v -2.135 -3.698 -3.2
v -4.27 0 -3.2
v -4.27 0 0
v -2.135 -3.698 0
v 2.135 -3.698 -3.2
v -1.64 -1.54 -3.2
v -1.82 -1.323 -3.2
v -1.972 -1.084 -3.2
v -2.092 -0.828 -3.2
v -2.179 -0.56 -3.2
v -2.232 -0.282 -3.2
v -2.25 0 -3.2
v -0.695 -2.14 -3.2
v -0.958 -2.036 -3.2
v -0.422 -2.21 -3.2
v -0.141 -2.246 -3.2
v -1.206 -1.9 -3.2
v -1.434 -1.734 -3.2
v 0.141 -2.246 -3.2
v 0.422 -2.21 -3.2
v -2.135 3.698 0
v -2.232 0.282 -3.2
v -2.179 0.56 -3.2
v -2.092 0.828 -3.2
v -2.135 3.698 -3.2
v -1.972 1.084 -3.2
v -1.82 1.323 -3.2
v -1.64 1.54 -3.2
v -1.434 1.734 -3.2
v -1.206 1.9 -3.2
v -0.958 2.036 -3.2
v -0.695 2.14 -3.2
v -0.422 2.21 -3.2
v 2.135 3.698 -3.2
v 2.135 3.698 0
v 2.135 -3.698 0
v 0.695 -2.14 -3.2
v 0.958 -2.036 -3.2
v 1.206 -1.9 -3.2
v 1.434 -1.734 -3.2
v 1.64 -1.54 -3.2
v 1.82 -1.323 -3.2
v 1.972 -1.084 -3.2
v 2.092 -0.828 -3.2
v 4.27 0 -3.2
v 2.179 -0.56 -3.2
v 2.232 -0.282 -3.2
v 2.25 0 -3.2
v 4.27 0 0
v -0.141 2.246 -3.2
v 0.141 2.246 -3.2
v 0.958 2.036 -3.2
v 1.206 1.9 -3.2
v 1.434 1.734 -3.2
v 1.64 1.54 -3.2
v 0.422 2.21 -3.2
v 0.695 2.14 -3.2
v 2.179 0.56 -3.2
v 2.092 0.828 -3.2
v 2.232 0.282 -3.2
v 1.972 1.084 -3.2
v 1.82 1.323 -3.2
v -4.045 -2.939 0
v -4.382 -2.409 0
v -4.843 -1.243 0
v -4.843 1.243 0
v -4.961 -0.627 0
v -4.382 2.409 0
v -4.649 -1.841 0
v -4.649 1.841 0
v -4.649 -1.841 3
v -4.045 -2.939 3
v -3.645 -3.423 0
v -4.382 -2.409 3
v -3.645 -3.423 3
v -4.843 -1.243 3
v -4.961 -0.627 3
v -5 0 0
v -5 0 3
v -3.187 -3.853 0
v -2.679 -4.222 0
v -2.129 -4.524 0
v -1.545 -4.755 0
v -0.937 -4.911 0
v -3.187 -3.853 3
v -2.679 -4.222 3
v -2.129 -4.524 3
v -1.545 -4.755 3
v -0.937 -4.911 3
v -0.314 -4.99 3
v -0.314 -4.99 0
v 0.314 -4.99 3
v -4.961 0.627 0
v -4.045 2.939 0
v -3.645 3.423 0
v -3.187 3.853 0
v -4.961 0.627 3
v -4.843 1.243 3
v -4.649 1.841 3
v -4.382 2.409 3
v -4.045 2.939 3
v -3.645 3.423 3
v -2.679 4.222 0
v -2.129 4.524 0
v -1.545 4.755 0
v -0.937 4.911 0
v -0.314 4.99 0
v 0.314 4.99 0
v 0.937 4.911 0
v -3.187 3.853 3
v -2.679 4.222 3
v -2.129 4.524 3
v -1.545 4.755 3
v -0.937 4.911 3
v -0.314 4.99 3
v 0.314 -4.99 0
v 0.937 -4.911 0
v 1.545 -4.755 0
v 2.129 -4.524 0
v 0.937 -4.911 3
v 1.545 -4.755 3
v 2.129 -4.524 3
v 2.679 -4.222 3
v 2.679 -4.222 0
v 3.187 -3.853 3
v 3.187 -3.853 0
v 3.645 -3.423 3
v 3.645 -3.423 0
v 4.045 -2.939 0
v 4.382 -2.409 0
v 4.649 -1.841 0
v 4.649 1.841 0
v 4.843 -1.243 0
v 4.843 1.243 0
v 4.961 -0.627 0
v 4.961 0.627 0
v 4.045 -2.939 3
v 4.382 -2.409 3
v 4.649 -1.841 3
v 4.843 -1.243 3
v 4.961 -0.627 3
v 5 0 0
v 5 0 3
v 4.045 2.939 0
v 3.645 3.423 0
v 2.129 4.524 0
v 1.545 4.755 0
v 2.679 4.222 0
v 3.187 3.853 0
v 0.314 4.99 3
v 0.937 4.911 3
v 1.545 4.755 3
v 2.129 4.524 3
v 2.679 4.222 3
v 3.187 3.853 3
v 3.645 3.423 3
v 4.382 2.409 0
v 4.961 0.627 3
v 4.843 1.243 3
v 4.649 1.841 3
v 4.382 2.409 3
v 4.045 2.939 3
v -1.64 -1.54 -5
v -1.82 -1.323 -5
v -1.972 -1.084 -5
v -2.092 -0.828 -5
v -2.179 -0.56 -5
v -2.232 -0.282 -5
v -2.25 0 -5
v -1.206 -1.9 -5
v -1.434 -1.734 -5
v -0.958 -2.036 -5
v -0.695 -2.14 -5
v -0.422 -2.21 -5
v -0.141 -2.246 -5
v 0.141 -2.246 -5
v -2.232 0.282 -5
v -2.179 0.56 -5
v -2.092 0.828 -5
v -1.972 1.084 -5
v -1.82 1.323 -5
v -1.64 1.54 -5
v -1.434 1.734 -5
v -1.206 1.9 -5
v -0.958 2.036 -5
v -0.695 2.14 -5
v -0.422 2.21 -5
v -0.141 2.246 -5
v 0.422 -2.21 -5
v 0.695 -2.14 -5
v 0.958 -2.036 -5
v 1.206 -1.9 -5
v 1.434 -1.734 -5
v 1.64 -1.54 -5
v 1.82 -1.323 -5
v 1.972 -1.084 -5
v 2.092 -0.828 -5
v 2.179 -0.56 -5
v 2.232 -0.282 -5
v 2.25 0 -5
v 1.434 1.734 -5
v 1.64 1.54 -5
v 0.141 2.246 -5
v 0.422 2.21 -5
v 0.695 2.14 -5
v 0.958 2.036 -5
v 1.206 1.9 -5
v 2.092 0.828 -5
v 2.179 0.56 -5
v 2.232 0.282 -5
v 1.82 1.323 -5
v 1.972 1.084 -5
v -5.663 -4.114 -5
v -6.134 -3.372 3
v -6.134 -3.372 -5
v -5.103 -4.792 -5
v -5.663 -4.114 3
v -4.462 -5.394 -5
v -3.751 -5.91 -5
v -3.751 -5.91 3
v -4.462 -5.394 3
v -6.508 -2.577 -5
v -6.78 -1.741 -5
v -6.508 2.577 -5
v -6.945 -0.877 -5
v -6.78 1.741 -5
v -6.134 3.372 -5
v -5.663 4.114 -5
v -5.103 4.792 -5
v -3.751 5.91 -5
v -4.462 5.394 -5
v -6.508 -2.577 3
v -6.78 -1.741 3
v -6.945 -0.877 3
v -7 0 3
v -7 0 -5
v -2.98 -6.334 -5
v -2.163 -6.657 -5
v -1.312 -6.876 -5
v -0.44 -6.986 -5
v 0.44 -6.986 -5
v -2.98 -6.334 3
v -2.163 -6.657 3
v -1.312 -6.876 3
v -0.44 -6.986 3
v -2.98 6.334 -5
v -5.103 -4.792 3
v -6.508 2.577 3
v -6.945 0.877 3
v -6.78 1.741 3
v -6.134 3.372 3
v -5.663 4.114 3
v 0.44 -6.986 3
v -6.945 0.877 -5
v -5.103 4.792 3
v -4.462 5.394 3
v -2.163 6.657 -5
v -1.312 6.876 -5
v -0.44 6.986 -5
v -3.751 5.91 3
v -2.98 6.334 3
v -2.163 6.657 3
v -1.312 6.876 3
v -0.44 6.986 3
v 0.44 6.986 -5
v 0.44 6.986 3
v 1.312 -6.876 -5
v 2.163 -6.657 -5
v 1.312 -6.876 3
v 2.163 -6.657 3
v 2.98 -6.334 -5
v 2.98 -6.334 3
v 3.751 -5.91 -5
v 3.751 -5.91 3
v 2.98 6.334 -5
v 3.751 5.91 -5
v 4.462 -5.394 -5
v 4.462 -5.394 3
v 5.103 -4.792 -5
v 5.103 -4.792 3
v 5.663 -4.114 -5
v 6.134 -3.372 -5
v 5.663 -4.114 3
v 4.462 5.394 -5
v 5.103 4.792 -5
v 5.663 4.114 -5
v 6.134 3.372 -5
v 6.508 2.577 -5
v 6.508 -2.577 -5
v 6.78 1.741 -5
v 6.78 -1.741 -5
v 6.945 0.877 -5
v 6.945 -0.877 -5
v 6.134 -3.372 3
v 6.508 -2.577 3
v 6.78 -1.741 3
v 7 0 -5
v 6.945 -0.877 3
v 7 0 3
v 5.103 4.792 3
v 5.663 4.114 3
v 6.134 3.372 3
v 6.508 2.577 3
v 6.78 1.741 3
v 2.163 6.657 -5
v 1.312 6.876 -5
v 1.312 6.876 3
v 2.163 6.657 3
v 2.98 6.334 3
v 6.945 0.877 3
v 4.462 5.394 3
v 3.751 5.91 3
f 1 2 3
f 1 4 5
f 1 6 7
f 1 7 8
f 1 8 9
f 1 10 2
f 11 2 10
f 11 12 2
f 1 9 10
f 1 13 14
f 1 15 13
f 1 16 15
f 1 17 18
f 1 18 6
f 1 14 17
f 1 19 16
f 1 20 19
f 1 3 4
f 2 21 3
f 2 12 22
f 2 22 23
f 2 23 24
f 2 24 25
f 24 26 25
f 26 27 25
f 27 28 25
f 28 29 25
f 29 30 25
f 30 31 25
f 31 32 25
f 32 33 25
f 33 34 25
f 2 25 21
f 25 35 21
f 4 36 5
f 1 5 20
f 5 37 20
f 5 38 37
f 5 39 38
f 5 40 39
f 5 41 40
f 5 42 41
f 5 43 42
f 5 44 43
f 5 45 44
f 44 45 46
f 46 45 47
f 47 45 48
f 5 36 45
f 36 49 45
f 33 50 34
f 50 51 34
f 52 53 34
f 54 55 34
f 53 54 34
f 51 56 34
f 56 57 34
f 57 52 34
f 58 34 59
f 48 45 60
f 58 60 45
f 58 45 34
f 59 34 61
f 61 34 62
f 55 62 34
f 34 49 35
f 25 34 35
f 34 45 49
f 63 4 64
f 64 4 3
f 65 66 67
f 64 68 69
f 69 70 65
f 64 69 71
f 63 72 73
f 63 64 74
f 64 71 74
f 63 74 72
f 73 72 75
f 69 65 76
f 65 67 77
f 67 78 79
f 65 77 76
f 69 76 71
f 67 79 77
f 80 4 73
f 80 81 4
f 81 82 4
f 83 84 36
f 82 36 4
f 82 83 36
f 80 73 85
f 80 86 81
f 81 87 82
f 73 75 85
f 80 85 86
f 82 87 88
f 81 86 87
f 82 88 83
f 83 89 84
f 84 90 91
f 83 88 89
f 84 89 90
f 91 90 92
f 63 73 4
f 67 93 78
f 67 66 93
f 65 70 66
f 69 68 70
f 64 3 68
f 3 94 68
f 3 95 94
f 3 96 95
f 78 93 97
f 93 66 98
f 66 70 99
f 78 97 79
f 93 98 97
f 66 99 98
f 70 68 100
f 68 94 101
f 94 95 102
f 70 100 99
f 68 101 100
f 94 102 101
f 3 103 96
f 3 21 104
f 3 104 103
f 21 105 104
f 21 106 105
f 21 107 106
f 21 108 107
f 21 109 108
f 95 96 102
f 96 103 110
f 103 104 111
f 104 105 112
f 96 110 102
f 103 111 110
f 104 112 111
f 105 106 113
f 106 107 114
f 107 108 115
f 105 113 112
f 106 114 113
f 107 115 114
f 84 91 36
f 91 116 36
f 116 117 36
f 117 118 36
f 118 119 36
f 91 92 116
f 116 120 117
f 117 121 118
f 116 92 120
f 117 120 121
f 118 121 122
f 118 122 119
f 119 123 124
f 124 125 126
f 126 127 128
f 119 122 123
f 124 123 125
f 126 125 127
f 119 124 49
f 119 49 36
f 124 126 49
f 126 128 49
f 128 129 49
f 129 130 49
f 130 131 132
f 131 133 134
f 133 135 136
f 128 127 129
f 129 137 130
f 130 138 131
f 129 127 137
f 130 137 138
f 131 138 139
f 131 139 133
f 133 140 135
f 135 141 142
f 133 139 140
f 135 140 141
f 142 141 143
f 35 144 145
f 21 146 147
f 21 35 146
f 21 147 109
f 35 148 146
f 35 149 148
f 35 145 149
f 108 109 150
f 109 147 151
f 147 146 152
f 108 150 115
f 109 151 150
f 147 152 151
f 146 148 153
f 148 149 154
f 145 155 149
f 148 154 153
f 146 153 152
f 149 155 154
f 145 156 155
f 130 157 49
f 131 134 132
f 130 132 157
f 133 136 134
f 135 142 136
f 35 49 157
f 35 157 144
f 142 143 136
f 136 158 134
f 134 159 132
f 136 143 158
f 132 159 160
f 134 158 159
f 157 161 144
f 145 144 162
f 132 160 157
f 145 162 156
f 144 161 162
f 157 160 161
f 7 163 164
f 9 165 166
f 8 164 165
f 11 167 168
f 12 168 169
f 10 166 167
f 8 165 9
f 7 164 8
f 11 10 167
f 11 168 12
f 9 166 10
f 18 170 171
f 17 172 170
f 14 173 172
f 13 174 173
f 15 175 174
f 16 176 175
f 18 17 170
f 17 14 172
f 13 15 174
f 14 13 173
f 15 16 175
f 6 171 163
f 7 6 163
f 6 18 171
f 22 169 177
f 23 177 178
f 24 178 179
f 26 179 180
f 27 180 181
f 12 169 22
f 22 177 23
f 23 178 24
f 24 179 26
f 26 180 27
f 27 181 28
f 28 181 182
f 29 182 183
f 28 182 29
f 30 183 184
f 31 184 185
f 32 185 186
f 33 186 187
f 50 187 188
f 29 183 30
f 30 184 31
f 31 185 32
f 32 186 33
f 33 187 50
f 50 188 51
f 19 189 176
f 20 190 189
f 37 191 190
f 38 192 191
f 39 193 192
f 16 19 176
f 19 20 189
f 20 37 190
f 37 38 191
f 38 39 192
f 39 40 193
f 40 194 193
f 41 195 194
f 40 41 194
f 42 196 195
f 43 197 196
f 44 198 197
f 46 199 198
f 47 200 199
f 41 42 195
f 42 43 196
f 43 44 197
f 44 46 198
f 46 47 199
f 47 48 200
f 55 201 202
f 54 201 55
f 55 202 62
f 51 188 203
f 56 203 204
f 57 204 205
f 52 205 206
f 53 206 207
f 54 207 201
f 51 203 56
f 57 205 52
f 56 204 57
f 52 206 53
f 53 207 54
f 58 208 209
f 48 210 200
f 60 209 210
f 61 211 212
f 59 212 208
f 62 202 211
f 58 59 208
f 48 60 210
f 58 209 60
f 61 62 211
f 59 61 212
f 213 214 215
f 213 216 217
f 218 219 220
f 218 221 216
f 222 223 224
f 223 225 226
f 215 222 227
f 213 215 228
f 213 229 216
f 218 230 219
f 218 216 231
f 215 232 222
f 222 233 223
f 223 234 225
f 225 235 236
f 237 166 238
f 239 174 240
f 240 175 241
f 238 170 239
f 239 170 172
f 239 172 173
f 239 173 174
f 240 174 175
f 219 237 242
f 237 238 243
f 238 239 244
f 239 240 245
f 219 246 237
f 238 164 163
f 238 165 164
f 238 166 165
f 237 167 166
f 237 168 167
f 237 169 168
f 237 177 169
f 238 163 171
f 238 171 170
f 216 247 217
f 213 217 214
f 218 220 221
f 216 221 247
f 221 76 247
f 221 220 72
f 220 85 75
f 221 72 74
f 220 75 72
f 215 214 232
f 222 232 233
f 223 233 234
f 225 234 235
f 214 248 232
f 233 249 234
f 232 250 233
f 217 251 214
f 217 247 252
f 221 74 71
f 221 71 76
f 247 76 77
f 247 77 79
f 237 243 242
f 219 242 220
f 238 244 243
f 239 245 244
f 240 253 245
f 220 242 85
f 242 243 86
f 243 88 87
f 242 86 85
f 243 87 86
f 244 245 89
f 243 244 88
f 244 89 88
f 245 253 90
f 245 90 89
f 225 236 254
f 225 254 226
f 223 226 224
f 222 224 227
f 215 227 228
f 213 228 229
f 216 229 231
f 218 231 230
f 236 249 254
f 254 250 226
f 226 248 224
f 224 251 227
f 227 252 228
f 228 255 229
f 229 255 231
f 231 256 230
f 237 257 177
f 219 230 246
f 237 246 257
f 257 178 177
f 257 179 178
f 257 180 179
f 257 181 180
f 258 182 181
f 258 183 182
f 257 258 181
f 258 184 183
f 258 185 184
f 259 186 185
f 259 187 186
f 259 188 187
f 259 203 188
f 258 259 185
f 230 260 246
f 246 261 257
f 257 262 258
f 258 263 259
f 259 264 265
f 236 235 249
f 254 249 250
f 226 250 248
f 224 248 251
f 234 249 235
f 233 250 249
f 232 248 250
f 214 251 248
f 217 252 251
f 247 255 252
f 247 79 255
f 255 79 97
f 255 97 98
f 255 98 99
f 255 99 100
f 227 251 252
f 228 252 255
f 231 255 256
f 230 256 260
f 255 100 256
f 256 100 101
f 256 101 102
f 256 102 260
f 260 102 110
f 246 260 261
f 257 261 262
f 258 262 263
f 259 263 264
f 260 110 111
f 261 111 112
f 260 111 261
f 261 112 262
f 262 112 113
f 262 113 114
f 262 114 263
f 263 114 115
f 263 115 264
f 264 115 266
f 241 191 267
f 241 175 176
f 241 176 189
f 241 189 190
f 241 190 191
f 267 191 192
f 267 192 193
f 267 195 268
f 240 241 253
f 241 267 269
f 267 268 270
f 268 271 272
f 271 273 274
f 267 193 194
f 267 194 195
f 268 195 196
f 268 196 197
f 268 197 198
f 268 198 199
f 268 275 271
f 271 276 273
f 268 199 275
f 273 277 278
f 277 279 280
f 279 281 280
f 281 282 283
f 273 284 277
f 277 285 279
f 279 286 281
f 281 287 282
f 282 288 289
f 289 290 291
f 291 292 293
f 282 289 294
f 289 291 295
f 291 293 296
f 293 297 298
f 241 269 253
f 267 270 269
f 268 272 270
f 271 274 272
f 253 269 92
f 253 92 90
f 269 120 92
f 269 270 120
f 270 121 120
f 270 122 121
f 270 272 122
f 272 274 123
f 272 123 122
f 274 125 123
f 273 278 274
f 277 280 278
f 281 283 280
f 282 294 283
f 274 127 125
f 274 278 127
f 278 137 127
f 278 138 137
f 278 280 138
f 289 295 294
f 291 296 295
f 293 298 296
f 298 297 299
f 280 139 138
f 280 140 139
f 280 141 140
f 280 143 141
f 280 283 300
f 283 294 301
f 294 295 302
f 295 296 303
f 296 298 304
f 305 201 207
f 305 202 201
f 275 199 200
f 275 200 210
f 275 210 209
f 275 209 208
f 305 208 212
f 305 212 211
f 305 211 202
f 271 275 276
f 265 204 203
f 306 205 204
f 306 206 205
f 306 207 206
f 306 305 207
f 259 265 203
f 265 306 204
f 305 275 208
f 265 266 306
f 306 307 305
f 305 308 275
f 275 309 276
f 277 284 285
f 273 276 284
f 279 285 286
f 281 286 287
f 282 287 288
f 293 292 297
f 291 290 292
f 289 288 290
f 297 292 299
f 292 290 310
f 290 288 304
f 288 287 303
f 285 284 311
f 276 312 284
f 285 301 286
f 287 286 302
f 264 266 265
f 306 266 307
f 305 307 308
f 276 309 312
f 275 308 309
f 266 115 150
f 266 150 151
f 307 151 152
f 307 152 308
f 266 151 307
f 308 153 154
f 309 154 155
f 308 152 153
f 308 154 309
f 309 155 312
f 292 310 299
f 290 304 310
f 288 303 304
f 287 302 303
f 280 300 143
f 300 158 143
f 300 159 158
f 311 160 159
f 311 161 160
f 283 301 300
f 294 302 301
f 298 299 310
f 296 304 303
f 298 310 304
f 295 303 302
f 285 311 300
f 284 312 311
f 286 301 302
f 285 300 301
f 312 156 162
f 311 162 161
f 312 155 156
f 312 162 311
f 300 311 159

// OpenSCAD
$fn = 50;


difference() {
	union() {
		translate(v = [0, 0, -5.0000000000]) {
			cylinder(h = 8.0000000000, r = 7.0000000000);
		}
	}
	union() {
		translate(v = [0, 0, 0]) {
			rotate(a = [0, 0, 0]) {
				difference() {
					union() {
						translate(v = [0, 0, -3.2000000000]) {
							linear_extrude(height = 3.2000000000) {
								polygon(points = [[4.2698000000, 0.0000000000], [2.1349000000, 3.6977552691], [-2.1349000000, 3.6977552691], [-4.2698000000, 0.0000000000], [-2.1349000000, -3.6977552691], [2.1349000000, -3.6977552691]]);
							}
						}
					}
					union();
				}
			}
		}
		#cylinder(h = 3, r = 5.0000000000);
		#translate(v = [0, 0, -100.0000000000]) {
			cylinder(h = 200, r = 2.2500000000);
		}
	}
}
